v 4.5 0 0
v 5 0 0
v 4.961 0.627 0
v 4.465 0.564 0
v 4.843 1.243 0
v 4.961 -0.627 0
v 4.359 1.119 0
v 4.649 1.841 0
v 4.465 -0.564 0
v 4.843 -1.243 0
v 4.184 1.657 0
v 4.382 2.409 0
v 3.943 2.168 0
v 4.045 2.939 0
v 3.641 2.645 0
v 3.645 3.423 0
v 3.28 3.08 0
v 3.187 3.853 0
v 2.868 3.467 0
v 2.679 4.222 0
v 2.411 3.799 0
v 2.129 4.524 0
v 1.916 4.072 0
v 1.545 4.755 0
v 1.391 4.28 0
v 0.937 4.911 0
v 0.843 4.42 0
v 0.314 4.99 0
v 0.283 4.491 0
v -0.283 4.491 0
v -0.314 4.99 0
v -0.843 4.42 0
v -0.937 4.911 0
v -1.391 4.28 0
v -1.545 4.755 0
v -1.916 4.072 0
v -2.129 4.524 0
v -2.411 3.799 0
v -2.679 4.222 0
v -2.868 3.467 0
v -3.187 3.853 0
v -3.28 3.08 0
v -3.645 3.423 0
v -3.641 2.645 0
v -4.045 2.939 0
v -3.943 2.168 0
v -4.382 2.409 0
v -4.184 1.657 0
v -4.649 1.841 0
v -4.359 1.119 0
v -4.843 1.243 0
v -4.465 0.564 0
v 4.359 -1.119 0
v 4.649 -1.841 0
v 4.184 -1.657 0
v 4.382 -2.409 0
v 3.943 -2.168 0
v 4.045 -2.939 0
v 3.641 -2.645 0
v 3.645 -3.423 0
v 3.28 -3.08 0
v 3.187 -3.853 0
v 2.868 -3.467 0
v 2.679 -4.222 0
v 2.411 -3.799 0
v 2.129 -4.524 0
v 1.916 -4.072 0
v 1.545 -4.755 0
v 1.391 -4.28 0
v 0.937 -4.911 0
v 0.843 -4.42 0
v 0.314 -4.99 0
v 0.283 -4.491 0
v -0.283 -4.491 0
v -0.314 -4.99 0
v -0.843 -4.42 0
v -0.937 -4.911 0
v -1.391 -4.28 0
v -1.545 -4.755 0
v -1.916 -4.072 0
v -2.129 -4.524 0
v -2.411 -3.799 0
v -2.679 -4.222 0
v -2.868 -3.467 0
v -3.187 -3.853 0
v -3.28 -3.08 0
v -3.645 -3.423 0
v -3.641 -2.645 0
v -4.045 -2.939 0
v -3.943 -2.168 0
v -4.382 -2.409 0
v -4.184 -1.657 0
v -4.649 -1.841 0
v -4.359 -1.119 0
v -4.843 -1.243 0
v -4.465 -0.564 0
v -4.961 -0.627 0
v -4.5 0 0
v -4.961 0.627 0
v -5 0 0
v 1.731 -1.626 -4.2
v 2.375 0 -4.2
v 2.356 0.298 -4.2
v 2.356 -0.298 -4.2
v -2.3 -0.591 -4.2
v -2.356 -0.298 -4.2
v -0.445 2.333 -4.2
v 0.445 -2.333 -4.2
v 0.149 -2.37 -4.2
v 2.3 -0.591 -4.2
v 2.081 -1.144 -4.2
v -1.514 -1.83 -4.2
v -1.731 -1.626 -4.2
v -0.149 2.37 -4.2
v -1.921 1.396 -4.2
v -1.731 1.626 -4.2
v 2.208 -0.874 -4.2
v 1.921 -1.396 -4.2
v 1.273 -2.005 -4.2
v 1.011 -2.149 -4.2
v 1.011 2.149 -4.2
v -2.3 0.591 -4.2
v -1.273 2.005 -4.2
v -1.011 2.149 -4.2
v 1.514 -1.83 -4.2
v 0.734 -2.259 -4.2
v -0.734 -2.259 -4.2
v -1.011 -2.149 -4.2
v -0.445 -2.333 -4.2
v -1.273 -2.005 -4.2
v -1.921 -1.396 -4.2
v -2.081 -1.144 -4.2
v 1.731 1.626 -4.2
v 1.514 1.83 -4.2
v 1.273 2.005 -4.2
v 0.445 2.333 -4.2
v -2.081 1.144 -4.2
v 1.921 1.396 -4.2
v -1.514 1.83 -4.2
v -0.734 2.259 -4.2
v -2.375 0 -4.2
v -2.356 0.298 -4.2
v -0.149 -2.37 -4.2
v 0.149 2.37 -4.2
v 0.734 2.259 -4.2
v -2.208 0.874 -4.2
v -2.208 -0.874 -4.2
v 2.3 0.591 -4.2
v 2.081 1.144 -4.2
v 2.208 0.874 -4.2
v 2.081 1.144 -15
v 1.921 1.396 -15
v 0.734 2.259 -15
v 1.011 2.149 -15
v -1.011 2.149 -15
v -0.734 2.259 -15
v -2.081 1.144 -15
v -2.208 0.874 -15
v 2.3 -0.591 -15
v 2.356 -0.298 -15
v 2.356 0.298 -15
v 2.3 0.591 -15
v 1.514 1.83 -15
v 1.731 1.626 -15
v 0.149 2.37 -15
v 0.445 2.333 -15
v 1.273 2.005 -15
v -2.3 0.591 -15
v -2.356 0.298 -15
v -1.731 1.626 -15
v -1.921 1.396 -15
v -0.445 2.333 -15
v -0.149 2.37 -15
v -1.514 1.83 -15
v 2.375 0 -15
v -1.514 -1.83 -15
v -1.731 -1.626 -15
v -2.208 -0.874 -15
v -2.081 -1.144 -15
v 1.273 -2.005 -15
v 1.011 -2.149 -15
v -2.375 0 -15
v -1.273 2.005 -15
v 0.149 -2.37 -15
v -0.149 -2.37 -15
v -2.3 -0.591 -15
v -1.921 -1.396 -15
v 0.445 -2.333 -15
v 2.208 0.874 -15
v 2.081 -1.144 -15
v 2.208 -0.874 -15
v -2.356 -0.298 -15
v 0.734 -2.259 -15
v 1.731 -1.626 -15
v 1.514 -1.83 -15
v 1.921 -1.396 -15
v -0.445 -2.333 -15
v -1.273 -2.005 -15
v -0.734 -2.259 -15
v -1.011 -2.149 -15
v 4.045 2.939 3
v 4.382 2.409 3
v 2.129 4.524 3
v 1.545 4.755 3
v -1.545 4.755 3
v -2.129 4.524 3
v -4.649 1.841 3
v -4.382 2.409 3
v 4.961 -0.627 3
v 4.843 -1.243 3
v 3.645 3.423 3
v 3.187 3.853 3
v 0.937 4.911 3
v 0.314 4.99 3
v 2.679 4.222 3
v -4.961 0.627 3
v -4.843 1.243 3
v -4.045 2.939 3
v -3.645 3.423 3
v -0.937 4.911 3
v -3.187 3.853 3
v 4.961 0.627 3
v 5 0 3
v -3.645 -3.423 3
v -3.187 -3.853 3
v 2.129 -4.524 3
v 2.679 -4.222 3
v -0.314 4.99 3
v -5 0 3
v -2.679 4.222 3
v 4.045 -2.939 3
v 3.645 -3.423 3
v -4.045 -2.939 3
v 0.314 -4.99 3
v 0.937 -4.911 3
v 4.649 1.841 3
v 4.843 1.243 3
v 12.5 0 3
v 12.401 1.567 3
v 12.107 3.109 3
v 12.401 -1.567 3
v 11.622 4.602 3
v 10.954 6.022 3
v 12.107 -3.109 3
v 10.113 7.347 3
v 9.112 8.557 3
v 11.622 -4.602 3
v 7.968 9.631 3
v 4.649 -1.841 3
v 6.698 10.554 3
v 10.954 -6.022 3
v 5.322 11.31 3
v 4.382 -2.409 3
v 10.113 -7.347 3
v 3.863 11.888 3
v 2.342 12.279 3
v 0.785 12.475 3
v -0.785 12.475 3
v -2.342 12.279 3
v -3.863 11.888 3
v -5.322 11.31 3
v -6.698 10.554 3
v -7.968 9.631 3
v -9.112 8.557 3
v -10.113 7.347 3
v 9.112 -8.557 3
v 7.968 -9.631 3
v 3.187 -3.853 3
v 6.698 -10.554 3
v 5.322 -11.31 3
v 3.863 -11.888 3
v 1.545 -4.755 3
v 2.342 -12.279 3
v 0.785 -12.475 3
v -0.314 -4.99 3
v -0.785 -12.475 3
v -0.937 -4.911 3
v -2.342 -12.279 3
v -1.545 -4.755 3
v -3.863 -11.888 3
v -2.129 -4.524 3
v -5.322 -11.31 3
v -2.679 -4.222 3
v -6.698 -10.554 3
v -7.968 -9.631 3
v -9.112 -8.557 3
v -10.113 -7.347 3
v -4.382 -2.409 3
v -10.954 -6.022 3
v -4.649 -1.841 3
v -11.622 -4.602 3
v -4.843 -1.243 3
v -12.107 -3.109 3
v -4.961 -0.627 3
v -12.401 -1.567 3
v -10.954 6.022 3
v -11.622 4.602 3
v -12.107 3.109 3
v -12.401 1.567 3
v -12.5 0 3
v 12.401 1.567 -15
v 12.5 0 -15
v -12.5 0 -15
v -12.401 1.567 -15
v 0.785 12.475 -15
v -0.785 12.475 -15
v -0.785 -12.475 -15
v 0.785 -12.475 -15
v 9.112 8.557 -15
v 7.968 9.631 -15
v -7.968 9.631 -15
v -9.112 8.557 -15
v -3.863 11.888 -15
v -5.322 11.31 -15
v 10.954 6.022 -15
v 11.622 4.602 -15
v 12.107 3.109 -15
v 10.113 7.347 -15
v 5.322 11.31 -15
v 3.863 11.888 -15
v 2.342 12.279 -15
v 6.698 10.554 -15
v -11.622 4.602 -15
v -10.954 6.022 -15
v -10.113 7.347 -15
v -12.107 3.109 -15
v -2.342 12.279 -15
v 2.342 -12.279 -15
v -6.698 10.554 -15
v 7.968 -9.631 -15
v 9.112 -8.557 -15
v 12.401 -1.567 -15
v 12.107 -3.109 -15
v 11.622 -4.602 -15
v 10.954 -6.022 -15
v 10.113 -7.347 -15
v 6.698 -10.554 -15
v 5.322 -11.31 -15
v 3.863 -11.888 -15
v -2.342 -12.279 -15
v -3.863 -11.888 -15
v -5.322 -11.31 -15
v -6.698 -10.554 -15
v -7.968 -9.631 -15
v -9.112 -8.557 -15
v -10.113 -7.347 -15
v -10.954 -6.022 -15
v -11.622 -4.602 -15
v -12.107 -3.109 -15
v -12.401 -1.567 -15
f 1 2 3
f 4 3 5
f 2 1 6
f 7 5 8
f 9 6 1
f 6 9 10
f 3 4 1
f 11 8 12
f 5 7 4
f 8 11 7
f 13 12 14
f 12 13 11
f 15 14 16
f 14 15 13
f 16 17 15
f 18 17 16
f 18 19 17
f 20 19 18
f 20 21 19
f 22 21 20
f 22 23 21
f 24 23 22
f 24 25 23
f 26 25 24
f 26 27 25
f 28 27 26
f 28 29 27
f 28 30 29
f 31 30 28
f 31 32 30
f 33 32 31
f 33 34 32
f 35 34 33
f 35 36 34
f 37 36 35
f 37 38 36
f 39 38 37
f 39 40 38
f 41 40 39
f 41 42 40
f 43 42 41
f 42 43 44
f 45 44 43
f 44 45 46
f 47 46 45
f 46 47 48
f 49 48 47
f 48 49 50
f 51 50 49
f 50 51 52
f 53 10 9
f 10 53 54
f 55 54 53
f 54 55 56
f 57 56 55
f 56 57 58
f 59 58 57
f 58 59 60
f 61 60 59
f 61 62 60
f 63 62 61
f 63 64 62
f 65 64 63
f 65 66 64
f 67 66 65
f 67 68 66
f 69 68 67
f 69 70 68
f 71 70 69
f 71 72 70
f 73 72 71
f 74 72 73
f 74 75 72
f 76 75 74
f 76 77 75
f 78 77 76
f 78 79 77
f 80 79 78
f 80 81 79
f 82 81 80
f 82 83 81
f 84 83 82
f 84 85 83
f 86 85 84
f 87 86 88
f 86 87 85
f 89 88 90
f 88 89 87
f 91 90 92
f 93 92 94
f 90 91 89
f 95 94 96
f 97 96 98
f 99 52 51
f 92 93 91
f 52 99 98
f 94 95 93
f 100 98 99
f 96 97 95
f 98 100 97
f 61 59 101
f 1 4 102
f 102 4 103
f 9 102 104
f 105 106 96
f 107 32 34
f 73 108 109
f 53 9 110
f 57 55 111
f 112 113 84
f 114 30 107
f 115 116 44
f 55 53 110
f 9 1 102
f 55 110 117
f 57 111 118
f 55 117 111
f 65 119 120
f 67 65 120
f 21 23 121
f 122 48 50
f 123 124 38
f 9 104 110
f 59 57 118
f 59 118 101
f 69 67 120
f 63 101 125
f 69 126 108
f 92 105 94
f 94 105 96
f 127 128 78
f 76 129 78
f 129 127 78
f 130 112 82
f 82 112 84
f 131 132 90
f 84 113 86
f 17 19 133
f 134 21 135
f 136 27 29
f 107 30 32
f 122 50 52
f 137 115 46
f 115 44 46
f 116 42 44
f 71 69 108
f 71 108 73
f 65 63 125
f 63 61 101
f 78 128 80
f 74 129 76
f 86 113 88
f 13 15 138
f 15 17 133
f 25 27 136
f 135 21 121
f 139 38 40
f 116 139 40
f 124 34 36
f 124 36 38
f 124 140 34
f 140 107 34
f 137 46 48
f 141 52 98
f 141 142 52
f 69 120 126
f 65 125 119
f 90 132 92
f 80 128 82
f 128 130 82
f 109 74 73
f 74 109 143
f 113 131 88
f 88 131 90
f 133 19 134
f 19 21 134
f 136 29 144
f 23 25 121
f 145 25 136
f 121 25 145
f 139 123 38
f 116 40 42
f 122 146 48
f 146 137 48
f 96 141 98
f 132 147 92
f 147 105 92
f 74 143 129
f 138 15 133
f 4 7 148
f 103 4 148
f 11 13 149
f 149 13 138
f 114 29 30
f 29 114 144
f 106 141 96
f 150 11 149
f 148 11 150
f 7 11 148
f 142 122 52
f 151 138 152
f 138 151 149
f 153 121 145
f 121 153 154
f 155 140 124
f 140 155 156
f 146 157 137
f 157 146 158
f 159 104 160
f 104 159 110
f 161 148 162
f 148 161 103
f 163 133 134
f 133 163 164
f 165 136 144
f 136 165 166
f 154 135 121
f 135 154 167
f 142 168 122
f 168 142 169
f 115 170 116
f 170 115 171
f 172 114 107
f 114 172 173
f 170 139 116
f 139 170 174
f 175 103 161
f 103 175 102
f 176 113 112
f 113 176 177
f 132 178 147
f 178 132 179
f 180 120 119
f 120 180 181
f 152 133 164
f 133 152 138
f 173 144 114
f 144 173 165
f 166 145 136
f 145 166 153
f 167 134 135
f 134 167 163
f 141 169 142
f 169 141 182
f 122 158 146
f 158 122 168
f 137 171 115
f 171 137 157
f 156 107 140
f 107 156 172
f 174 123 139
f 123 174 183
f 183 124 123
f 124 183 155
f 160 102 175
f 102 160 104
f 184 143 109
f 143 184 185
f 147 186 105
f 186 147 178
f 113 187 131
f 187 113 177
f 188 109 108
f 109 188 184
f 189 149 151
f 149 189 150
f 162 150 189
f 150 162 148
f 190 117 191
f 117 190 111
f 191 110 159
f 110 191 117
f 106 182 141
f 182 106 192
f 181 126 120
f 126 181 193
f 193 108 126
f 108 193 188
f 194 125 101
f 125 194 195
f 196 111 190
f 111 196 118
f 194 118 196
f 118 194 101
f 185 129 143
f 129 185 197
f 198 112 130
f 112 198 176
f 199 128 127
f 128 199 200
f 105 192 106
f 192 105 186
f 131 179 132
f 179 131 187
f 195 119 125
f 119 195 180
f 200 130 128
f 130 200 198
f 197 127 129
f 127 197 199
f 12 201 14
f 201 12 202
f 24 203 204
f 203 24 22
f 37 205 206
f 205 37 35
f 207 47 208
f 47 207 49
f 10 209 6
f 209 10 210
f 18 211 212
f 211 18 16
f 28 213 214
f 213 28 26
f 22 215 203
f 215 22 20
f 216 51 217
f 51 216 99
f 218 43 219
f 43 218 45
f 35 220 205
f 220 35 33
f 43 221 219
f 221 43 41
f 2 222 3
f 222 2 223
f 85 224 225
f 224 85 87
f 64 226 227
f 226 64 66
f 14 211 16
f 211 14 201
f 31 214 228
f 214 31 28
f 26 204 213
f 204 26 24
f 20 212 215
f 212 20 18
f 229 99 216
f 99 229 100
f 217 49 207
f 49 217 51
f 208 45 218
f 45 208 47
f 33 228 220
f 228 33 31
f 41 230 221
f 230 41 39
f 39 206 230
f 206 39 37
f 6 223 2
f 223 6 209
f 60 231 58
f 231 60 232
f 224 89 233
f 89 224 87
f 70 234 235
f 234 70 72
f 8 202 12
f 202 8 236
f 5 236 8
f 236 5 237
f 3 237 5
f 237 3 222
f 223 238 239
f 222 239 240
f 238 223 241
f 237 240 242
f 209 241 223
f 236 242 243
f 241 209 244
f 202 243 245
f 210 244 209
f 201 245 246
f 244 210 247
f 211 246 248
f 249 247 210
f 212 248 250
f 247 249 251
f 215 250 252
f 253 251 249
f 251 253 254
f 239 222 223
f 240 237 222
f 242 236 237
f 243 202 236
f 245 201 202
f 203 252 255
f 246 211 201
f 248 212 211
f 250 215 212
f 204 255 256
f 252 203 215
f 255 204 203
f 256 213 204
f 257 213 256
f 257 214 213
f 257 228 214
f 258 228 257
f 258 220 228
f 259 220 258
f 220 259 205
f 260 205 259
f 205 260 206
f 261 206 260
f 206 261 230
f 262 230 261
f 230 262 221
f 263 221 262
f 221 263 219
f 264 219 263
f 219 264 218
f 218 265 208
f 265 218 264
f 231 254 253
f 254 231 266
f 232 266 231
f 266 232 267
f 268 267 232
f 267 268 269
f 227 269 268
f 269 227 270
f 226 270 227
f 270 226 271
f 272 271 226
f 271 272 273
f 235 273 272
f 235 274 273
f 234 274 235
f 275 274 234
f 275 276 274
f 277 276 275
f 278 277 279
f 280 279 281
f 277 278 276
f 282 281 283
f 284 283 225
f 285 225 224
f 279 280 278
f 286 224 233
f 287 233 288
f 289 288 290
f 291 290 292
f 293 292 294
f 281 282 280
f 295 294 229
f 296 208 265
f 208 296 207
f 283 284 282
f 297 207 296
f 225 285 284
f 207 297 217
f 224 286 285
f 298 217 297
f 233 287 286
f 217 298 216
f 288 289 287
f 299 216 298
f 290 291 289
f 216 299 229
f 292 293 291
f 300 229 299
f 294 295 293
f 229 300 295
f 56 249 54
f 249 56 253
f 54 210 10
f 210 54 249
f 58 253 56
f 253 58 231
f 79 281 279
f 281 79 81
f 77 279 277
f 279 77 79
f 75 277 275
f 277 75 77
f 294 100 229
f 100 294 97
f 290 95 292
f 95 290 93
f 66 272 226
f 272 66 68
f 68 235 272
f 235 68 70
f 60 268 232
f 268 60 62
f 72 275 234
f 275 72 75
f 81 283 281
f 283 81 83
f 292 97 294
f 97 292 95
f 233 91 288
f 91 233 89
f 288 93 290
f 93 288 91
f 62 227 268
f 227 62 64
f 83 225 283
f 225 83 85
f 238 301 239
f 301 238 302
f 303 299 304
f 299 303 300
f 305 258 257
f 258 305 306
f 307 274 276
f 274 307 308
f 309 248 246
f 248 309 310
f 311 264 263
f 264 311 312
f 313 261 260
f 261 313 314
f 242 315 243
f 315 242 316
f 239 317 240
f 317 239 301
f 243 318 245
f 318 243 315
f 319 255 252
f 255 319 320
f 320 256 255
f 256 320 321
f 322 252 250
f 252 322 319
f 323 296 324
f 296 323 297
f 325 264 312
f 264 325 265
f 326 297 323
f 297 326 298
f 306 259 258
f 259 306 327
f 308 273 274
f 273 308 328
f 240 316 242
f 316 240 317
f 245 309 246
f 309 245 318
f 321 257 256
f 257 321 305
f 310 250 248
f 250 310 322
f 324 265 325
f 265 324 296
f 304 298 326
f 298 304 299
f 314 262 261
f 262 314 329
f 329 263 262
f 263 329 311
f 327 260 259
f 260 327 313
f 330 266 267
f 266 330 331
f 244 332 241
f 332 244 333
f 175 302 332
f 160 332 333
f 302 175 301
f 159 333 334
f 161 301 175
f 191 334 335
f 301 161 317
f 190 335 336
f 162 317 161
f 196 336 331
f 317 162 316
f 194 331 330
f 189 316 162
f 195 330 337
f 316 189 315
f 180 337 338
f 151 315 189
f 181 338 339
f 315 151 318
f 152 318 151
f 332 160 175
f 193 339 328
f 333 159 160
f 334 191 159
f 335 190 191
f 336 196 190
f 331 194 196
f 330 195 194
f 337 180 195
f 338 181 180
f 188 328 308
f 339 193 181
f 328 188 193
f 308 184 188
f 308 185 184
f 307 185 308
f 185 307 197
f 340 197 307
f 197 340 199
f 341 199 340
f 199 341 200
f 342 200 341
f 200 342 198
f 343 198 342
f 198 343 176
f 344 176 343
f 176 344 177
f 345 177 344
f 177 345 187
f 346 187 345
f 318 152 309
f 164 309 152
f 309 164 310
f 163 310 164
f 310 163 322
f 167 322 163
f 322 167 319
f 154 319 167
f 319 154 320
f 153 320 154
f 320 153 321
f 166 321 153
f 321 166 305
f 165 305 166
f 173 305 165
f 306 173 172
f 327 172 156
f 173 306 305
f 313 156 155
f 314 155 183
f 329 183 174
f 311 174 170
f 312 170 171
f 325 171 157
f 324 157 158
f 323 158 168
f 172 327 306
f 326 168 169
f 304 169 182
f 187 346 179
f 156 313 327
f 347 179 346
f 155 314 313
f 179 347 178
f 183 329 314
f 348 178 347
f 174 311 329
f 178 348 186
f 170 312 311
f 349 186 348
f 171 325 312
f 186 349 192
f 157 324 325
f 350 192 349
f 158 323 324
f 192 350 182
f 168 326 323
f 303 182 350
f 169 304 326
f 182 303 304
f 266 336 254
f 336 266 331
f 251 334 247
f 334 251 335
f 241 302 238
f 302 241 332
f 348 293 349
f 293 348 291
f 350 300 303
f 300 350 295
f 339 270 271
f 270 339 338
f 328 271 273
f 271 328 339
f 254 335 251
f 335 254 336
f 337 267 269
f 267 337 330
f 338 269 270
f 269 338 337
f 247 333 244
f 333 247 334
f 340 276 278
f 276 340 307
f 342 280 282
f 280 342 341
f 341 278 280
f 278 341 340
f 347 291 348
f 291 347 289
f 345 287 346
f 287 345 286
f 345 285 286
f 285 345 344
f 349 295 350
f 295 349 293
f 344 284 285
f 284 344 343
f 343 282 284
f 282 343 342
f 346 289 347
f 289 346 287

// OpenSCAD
$fn = 50;


difference() {
	union() {
		translate(v = [0, 0, -15.0000000000]) {
			cylinder(h = 18, r = 12.5000000000);
		}
	}
	union() {
		translate(v = [0, 0, 0]) {
			rotate(a = [0, 0, 0]) {
				difference() {
					union() {
						translate(v = [0, 0, -18.0000000000]) {
							cylinder(h = 18, r = 2.2500000000);
						}
						translate(v = [0, 0, -4.2000000000]) {
							cylinder(h = 4.2000000000, r1 = 2.3750000000, r2 = 4.5000000000);
						}
						translate(v = [0, 0, -18.0000000000]) {
							cylinder(h = 18, r = 2.3750000000);
						}
						translate(v = [0, 0, -18.0000000000]) {
							cylinder(h = 18, r = 2.2500000000);
						}
					}
					union();
				}
			}
		}
		#cylinder(h = 3, r = 5.0000000000);
	}
}
